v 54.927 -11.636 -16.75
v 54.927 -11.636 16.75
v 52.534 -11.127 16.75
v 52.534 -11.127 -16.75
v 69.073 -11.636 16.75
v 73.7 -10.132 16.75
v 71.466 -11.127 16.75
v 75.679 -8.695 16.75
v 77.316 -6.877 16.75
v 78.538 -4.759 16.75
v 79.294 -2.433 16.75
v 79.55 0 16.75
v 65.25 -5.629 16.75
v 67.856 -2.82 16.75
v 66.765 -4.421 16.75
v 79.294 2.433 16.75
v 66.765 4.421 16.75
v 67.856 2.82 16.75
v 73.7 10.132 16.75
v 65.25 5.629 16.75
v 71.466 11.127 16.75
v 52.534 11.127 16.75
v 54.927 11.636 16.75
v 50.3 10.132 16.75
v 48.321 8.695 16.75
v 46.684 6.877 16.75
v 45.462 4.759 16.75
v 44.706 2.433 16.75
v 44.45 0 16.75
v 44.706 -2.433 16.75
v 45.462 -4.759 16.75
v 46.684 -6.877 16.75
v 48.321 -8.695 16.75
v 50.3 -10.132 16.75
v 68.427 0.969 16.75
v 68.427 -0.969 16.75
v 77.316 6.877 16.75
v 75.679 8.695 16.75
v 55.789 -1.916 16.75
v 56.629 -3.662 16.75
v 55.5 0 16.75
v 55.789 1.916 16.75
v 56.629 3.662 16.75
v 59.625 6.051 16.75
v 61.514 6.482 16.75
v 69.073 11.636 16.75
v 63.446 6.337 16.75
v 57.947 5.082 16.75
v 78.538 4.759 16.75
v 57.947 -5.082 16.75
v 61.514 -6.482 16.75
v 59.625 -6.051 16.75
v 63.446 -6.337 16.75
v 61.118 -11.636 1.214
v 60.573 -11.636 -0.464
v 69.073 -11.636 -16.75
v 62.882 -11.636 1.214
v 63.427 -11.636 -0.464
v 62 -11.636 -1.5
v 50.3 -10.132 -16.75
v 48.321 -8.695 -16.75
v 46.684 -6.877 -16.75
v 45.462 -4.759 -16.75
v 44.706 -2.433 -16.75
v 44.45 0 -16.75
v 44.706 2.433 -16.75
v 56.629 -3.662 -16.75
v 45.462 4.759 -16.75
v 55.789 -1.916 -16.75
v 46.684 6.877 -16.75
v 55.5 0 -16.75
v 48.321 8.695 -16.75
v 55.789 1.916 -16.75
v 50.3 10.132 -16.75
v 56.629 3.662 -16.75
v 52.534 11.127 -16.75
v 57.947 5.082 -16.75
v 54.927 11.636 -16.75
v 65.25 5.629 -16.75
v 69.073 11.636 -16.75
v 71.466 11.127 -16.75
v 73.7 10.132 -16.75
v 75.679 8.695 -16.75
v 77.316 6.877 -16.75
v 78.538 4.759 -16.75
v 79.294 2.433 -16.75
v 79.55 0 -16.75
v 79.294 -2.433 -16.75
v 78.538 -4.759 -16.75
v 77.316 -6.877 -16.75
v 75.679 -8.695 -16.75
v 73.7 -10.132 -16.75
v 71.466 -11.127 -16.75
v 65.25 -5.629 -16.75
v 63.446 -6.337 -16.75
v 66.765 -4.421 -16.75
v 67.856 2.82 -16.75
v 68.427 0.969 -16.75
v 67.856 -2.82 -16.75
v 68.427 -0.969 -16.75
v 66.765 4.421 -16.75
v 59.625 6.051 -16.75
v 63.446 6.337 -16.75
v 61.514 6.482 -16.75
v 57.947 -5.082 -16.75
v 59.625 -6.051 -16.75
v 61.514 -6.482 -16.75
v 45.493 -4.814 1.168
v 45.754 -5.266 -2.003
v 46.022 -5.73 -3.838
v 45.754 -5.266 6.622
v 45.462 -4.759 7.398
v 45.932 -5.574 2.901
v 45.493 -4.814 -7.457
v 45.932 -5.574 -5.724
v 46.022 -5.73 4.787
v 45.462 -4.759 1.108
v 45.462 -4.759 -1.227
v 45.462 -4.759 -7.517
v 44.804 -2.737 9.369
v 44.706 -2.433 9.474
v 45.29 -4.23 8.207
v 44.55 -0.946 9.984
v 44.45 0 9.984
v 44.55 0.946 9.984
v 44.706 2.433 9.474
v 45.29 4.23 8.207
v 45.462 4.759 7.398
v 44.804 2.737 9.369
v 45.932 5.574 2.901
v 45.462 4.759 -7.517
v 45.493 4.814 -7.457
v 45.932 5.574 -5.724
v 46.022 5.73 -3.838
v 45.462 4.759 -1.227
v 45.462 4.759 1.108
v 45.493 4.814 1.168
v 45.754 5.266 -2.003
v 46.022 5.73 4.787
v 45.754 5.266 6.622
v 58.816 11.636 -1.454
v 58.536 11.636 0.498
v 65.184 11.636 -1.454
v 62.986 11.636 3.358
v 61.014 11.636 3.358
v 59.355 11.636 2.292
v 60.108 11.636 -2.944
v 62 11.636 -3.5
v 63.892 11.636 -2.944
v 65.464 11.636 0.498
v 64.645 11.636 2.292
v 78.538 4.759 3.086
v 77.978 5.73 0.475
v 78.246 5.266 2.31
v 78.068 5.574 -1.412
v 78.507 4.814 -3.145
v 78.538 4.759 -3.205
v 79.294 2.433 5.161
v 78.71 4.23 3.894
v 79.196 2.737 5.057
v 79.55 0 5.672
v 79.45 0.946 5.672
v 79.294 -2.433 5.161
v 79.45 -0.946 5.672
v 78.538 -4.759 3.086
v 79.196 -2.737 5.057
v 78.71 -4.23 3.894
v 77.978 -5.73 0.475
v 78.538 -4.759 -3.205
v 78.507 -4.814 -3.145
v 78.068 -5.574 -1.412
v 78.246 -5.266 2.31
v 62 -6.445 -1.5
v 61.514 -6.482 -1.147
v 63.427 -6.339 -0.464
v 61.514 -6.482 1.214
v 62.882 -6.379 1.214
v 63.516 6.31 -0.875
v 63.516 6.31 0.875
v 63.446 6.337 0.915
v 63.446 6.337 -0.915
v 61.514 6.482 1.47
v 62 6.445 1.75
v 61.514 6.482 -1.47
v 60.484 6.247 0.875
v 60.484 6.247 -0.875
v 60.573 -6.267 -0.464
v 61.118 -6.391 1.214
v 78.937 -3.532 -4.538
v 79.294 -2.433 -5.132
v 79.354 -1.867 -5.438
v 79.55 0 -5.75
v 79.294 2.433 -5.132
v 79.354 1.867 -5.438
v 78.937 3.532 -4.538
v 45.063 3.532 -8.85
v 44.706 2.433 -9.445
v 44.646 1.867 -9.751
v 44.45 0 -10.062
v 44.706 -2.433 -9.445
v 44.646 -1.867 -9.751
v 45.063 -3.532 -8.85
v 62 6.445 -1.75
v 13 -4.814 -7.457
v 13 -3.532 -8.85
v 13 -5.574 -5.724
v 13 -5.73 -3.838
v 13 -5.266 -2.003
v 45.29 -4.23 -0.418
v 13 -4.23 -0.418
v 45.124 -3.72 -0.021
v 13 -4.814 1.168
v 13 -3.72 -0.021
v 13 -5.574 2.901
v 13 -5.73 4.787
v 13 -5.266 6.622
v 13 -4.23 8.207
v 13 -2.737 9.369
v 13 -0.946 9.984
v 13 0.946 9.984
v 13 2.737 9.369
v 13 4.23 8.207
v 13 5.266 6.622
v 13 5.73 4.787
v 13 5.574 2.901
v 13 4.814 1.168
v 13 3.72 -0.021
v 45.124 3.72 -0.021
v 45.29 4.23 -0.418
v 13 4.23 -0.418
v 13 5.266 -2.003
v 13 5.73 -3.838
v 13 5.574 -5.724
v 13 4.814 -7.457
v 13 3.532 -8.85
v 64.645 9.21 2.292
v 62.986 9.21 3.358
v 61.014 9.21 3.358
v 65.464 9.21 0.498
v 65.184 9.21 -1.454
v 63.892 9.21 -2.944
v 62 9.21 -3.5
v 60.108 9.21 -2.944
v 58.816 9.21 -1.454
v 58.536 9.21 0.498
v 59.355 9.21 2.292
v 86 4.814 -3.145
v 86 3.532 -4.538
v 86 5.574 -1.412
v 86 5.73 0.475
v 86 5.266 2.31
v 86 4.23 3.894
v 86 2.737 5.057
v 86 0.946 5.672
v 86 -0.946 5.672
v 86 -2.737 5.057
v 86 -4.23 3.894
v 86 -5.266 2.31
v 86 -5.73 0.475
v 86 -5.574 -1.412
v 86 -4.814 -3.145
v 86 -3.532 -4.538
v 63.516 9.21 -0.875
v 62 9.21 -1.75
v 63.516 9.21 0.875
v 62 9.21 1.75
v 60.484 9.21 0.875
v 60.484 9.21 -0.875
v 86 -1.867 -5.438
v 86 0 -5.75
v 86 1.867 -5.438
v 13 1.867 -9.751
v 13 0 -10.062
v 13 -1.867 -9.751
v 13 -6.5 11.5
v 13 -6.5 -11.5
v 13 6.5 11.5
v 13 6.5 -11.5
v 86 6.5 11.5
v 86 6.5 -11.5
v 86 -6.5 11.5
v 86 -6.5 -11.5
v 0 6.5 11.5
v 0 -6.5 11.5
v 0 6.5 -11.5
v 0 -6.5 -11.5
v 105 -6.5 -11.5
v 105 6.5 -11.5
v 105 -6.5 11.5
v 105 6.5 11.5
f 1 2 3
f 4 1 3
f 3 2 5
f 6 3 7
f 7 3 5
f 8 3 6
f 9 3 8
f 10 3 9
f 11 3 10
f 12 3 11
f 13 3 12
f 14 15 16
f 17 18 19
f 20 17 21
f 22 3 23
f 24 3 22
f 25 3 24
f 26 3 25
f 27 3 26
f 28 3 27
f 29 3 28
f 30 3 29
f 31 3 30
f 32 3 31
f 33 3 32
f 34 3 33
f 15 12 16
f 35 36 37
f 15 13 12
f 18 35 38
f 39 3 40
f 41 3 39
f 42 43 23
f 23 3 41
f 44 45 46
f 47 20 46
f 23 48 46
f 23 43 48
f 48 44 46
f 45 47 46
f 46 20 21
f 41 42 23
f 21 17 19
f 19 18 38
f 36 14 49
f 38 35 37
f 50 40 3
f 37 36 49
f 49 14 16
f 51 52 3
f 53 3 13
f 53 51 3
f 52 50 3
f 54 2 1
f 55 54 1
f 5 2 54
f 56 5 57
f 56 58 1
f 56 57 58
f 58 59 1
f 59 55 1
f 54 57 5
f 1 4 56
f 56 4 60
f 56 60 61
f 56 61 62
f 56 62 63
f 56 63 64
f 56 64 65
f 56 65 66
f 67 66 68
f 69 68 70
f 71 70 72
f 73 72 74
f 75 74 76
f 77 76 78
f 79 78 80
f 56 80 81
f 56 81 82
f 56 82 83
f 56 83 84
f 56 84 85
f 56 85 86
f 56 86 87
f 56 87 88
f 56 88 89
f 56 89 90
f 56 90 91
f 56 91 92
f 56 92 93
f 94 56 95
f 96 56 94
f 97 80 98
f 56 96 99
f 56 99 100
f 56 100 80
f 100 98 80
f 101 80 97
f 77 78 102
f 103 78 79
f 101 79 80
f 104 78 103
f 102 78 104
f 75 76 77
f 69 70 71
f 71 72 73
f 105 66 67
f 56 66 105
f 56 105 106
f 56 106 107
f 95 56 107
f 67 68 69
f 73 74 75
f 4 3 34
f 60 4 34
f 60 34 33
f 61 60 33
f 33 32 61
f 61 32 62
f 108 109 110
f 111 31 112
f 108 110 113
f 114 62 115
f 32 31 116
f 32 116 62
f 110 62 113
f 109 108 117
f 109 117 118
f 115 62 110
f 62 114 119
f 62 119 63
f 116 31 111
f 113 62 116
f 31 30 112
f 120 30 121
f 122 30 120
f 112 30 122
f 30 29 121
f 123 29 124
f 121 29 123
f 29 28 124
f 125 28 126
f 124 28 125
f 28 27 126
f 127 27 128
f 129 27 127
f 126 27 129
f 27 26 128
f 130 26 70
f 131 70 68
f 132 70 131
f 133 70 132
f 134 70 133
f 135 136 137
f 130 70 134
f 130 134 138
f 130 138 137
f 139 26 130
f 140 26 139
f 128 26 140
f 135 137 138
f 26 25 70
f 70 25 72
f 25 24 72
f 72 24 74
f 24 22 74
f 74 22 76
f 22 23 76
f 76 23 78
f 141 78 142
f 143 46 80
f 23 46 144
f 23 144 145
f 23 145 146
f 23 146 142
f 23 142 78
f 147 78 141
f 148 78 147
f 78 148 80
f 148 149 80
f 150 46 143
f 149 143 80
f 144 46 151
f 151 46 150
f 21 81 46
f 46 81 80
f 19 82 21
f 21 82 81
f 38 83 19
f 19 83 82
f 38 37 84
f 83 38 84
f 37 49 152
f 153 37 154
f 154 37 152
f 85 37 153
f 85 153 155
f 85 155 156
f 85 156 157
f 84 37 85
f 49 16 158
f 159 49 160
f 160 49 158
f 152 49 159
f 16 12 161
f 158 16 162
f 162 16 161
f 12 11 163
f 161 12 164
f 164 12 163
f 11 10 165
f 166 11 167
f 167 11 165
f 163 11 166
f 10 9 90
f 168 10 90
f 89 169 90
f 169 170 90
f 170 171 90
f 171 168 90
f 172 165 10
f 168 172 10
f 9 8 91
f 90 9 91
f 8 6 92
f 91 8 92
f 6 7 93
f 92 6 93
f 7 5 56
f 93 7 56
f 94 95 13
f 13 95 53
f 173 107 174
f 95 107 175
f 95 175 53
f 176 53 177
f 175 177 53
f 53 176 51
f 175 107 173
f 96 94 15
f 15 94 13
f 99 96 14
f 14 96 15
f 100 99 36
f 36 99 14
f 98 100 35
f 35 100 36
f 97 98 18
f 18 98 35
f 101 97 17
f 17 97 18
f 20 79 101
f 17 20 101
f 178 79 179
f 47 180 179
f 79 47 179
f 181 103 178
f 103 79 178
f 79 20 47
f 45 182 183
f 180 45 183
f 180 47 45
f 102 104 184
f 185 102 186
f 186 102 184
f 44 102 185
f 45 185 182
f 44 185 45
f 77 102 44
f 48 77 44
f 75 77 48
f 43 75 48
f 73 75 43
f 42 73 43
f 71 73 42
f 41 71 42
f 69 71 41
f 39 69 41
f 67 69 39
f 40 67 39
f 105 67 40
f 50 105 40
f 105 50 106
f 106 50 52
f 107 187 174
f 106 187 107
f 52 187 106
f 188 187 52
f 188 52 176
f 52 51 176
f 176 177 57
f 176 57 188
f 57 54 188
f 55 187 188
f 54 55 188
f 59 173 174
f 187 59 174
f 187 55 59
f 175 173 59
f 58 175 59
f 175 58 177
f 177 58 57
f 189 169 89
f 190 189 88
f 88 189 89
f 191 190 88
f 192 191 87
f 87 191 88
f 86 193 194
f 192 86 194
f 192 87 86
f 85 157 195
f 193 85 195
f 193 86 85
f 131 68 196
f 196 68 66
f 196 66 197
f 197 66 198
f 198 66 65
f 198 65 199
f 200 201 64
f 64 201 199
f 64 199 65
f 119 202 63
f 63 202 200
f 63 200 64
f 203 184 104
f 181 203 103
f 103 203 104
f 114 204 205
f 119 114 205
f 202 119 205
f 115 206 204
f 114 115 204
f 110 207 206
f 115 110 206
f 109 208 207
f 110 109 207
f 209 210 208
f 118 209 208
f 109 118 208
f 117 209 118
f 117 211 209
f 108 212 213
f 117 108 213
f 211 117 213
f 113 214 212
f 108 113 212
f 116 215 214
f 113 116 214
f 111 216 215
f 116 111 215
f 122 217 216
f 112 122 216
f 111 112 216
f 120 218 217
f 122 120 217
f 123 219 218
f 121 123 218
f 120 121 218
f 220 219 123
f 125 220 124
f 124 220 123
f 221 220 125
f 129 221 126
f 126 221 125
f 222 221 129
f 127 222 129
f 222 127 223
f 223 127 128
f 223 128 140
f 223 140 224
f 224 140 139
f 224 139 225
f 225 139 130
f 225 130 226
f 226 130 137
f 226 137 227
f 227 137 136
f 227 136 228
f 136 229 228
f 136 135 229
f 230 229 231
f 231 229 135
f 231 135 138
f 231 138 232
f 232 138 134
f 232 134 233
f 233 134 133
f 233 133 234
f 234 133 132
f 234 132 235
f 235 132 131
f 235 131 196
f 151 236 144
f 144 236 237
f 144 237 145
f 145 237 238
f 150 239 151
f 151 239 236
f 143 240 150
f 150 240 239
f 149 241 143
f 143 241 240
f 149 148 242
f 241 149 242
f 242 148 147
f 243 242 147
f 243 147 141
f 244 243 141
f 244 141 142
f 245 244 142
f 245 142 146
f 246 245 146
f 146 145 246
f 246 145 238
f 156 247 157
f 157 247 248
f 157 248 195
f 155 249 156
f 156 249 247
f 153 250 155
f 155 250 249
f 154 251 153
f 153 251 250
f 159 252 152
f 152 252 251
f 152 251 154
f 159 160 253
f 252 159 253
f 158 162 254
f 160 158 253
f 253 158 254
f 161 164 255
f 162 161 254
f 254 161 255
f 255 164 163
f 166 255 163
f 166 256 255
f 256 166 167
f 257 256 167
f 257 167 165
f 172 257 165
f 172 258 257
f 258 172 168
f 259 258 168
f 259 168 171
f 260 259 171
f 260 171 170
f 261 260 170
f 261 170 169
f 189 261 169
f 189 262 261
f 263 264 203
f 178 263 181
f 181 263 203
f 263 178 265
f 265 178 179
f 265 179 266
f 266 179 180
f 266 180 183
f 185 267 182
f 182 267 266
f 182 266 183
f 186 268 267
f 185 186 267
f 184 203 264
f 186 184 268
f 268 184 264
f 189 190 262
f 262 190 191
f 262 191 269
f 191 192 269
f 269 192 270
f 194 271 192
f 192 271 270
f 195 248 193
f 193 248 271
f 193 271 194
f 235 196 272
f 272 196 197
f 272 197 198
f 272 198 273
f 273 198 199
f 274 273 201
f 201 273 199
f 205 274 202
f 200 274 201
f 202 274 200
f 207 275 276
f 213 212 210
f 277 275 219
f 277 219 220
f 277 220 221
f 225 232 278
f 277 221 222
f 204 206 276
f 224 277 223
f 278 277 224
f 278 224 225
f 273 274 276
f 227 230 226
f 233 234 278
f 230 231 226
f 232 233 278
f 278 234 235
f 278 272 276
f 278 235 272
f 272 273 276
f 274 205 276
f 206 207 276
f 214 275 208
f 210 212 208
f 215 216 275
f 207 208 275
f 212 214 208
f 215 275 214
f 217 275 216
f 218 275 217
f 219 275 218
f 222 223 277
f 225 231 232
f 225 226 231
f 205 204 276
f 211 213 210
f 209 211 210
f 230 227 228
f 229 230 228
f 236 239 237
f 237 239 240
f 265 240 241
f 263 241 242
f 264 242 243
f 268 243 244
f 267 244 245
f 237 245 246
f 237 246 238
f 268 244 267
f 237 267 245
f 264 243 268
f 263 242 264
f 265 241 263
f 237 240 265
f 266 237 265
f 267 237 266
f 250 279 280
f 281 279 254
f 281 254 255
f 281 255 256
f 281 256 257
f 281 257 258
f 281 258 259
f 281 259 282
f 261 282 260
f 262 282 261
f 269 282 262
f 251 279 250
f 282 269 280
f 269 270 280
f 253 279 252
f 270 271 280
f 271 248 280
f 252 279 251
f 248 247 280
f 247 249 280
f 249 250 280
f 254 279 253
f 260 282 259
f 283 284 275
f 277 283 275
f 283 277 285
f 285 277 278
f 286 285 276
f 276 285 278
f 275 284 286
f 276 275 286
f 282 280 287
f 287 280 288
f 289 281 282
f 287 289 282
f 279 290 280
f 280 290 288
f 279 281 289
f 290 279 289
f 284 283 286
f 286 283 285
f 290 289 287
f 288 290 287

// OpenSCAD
module kicker (foot_h, hole_h, h, hh, hole_dia, w, foot_w, d, shw, shd, s1, s2)
{
    body_r = 1.8 * hole_dia / 2;
    difference () {
        union () {
            // Foot
            translate ([0, 0, foot_h / 2])
                cube ([foot_w, d, foot_h], center = true);
            // Legs
            translate ([-foot_w / 4 + foot_w / 16, 0, foot_h - 0.01])
                cylinder (h = hole_h - foot_h, r = foot_w / 4);
            translate ([ foot_w / 4 - foot_w / 16, 0, foot_h - 0.01])
                cylinder (h = hole_h - foot_h, r = foot_w / 4);
            // Body
            translate ([0, 0, hole_h]) {
                hull () {
                    translate ([0, 0,  body_r / 2])
                        rotate ([0, 90, 0])
                            cylinder (r = body_r, h = w, center = true);
                    translate ([0, 0, -body_r / 2])
                        rotate ([0, 90, 0])
                            cylinder (r = body_r, h = w, center = true);
                }
            }
            // Neck
            translate ([0, 0, hole_h])
                cylinder (r = foot_w / 4, h = h - hole_h);
            // Head
            translate ([0, 0, h - hh / 2])
                cube ([foot_w, d, hh], center = true);
        }
        translate ([0, 0, hole_h])
        {
            // Big hole through body for mounting
            rotate ([0, 90, 0])
                cylinder (r = hole_dia / 2, h = 2 * w, center = true);
            // Screw hole
            rotate ([90, 0, 0])
                translate ([0, 0, -body_r - 0.01])
                    cylinder (r = shw / 2, h = shd);
            rotate ([-90, 0, 0])
                cylinder (r = s1 / 2, h = 1.1 * body_r);
            rotate ([90, 0, 0])
                cylinder (r = s2 / 2, h = 3 * body_r, center = true);
        }
    }
}

rotate ([0, 90, 0])
kicker (13, 62, 105, 19, 13, 33.5, 23, 13, 7, 2.5, 3.5, 3);
